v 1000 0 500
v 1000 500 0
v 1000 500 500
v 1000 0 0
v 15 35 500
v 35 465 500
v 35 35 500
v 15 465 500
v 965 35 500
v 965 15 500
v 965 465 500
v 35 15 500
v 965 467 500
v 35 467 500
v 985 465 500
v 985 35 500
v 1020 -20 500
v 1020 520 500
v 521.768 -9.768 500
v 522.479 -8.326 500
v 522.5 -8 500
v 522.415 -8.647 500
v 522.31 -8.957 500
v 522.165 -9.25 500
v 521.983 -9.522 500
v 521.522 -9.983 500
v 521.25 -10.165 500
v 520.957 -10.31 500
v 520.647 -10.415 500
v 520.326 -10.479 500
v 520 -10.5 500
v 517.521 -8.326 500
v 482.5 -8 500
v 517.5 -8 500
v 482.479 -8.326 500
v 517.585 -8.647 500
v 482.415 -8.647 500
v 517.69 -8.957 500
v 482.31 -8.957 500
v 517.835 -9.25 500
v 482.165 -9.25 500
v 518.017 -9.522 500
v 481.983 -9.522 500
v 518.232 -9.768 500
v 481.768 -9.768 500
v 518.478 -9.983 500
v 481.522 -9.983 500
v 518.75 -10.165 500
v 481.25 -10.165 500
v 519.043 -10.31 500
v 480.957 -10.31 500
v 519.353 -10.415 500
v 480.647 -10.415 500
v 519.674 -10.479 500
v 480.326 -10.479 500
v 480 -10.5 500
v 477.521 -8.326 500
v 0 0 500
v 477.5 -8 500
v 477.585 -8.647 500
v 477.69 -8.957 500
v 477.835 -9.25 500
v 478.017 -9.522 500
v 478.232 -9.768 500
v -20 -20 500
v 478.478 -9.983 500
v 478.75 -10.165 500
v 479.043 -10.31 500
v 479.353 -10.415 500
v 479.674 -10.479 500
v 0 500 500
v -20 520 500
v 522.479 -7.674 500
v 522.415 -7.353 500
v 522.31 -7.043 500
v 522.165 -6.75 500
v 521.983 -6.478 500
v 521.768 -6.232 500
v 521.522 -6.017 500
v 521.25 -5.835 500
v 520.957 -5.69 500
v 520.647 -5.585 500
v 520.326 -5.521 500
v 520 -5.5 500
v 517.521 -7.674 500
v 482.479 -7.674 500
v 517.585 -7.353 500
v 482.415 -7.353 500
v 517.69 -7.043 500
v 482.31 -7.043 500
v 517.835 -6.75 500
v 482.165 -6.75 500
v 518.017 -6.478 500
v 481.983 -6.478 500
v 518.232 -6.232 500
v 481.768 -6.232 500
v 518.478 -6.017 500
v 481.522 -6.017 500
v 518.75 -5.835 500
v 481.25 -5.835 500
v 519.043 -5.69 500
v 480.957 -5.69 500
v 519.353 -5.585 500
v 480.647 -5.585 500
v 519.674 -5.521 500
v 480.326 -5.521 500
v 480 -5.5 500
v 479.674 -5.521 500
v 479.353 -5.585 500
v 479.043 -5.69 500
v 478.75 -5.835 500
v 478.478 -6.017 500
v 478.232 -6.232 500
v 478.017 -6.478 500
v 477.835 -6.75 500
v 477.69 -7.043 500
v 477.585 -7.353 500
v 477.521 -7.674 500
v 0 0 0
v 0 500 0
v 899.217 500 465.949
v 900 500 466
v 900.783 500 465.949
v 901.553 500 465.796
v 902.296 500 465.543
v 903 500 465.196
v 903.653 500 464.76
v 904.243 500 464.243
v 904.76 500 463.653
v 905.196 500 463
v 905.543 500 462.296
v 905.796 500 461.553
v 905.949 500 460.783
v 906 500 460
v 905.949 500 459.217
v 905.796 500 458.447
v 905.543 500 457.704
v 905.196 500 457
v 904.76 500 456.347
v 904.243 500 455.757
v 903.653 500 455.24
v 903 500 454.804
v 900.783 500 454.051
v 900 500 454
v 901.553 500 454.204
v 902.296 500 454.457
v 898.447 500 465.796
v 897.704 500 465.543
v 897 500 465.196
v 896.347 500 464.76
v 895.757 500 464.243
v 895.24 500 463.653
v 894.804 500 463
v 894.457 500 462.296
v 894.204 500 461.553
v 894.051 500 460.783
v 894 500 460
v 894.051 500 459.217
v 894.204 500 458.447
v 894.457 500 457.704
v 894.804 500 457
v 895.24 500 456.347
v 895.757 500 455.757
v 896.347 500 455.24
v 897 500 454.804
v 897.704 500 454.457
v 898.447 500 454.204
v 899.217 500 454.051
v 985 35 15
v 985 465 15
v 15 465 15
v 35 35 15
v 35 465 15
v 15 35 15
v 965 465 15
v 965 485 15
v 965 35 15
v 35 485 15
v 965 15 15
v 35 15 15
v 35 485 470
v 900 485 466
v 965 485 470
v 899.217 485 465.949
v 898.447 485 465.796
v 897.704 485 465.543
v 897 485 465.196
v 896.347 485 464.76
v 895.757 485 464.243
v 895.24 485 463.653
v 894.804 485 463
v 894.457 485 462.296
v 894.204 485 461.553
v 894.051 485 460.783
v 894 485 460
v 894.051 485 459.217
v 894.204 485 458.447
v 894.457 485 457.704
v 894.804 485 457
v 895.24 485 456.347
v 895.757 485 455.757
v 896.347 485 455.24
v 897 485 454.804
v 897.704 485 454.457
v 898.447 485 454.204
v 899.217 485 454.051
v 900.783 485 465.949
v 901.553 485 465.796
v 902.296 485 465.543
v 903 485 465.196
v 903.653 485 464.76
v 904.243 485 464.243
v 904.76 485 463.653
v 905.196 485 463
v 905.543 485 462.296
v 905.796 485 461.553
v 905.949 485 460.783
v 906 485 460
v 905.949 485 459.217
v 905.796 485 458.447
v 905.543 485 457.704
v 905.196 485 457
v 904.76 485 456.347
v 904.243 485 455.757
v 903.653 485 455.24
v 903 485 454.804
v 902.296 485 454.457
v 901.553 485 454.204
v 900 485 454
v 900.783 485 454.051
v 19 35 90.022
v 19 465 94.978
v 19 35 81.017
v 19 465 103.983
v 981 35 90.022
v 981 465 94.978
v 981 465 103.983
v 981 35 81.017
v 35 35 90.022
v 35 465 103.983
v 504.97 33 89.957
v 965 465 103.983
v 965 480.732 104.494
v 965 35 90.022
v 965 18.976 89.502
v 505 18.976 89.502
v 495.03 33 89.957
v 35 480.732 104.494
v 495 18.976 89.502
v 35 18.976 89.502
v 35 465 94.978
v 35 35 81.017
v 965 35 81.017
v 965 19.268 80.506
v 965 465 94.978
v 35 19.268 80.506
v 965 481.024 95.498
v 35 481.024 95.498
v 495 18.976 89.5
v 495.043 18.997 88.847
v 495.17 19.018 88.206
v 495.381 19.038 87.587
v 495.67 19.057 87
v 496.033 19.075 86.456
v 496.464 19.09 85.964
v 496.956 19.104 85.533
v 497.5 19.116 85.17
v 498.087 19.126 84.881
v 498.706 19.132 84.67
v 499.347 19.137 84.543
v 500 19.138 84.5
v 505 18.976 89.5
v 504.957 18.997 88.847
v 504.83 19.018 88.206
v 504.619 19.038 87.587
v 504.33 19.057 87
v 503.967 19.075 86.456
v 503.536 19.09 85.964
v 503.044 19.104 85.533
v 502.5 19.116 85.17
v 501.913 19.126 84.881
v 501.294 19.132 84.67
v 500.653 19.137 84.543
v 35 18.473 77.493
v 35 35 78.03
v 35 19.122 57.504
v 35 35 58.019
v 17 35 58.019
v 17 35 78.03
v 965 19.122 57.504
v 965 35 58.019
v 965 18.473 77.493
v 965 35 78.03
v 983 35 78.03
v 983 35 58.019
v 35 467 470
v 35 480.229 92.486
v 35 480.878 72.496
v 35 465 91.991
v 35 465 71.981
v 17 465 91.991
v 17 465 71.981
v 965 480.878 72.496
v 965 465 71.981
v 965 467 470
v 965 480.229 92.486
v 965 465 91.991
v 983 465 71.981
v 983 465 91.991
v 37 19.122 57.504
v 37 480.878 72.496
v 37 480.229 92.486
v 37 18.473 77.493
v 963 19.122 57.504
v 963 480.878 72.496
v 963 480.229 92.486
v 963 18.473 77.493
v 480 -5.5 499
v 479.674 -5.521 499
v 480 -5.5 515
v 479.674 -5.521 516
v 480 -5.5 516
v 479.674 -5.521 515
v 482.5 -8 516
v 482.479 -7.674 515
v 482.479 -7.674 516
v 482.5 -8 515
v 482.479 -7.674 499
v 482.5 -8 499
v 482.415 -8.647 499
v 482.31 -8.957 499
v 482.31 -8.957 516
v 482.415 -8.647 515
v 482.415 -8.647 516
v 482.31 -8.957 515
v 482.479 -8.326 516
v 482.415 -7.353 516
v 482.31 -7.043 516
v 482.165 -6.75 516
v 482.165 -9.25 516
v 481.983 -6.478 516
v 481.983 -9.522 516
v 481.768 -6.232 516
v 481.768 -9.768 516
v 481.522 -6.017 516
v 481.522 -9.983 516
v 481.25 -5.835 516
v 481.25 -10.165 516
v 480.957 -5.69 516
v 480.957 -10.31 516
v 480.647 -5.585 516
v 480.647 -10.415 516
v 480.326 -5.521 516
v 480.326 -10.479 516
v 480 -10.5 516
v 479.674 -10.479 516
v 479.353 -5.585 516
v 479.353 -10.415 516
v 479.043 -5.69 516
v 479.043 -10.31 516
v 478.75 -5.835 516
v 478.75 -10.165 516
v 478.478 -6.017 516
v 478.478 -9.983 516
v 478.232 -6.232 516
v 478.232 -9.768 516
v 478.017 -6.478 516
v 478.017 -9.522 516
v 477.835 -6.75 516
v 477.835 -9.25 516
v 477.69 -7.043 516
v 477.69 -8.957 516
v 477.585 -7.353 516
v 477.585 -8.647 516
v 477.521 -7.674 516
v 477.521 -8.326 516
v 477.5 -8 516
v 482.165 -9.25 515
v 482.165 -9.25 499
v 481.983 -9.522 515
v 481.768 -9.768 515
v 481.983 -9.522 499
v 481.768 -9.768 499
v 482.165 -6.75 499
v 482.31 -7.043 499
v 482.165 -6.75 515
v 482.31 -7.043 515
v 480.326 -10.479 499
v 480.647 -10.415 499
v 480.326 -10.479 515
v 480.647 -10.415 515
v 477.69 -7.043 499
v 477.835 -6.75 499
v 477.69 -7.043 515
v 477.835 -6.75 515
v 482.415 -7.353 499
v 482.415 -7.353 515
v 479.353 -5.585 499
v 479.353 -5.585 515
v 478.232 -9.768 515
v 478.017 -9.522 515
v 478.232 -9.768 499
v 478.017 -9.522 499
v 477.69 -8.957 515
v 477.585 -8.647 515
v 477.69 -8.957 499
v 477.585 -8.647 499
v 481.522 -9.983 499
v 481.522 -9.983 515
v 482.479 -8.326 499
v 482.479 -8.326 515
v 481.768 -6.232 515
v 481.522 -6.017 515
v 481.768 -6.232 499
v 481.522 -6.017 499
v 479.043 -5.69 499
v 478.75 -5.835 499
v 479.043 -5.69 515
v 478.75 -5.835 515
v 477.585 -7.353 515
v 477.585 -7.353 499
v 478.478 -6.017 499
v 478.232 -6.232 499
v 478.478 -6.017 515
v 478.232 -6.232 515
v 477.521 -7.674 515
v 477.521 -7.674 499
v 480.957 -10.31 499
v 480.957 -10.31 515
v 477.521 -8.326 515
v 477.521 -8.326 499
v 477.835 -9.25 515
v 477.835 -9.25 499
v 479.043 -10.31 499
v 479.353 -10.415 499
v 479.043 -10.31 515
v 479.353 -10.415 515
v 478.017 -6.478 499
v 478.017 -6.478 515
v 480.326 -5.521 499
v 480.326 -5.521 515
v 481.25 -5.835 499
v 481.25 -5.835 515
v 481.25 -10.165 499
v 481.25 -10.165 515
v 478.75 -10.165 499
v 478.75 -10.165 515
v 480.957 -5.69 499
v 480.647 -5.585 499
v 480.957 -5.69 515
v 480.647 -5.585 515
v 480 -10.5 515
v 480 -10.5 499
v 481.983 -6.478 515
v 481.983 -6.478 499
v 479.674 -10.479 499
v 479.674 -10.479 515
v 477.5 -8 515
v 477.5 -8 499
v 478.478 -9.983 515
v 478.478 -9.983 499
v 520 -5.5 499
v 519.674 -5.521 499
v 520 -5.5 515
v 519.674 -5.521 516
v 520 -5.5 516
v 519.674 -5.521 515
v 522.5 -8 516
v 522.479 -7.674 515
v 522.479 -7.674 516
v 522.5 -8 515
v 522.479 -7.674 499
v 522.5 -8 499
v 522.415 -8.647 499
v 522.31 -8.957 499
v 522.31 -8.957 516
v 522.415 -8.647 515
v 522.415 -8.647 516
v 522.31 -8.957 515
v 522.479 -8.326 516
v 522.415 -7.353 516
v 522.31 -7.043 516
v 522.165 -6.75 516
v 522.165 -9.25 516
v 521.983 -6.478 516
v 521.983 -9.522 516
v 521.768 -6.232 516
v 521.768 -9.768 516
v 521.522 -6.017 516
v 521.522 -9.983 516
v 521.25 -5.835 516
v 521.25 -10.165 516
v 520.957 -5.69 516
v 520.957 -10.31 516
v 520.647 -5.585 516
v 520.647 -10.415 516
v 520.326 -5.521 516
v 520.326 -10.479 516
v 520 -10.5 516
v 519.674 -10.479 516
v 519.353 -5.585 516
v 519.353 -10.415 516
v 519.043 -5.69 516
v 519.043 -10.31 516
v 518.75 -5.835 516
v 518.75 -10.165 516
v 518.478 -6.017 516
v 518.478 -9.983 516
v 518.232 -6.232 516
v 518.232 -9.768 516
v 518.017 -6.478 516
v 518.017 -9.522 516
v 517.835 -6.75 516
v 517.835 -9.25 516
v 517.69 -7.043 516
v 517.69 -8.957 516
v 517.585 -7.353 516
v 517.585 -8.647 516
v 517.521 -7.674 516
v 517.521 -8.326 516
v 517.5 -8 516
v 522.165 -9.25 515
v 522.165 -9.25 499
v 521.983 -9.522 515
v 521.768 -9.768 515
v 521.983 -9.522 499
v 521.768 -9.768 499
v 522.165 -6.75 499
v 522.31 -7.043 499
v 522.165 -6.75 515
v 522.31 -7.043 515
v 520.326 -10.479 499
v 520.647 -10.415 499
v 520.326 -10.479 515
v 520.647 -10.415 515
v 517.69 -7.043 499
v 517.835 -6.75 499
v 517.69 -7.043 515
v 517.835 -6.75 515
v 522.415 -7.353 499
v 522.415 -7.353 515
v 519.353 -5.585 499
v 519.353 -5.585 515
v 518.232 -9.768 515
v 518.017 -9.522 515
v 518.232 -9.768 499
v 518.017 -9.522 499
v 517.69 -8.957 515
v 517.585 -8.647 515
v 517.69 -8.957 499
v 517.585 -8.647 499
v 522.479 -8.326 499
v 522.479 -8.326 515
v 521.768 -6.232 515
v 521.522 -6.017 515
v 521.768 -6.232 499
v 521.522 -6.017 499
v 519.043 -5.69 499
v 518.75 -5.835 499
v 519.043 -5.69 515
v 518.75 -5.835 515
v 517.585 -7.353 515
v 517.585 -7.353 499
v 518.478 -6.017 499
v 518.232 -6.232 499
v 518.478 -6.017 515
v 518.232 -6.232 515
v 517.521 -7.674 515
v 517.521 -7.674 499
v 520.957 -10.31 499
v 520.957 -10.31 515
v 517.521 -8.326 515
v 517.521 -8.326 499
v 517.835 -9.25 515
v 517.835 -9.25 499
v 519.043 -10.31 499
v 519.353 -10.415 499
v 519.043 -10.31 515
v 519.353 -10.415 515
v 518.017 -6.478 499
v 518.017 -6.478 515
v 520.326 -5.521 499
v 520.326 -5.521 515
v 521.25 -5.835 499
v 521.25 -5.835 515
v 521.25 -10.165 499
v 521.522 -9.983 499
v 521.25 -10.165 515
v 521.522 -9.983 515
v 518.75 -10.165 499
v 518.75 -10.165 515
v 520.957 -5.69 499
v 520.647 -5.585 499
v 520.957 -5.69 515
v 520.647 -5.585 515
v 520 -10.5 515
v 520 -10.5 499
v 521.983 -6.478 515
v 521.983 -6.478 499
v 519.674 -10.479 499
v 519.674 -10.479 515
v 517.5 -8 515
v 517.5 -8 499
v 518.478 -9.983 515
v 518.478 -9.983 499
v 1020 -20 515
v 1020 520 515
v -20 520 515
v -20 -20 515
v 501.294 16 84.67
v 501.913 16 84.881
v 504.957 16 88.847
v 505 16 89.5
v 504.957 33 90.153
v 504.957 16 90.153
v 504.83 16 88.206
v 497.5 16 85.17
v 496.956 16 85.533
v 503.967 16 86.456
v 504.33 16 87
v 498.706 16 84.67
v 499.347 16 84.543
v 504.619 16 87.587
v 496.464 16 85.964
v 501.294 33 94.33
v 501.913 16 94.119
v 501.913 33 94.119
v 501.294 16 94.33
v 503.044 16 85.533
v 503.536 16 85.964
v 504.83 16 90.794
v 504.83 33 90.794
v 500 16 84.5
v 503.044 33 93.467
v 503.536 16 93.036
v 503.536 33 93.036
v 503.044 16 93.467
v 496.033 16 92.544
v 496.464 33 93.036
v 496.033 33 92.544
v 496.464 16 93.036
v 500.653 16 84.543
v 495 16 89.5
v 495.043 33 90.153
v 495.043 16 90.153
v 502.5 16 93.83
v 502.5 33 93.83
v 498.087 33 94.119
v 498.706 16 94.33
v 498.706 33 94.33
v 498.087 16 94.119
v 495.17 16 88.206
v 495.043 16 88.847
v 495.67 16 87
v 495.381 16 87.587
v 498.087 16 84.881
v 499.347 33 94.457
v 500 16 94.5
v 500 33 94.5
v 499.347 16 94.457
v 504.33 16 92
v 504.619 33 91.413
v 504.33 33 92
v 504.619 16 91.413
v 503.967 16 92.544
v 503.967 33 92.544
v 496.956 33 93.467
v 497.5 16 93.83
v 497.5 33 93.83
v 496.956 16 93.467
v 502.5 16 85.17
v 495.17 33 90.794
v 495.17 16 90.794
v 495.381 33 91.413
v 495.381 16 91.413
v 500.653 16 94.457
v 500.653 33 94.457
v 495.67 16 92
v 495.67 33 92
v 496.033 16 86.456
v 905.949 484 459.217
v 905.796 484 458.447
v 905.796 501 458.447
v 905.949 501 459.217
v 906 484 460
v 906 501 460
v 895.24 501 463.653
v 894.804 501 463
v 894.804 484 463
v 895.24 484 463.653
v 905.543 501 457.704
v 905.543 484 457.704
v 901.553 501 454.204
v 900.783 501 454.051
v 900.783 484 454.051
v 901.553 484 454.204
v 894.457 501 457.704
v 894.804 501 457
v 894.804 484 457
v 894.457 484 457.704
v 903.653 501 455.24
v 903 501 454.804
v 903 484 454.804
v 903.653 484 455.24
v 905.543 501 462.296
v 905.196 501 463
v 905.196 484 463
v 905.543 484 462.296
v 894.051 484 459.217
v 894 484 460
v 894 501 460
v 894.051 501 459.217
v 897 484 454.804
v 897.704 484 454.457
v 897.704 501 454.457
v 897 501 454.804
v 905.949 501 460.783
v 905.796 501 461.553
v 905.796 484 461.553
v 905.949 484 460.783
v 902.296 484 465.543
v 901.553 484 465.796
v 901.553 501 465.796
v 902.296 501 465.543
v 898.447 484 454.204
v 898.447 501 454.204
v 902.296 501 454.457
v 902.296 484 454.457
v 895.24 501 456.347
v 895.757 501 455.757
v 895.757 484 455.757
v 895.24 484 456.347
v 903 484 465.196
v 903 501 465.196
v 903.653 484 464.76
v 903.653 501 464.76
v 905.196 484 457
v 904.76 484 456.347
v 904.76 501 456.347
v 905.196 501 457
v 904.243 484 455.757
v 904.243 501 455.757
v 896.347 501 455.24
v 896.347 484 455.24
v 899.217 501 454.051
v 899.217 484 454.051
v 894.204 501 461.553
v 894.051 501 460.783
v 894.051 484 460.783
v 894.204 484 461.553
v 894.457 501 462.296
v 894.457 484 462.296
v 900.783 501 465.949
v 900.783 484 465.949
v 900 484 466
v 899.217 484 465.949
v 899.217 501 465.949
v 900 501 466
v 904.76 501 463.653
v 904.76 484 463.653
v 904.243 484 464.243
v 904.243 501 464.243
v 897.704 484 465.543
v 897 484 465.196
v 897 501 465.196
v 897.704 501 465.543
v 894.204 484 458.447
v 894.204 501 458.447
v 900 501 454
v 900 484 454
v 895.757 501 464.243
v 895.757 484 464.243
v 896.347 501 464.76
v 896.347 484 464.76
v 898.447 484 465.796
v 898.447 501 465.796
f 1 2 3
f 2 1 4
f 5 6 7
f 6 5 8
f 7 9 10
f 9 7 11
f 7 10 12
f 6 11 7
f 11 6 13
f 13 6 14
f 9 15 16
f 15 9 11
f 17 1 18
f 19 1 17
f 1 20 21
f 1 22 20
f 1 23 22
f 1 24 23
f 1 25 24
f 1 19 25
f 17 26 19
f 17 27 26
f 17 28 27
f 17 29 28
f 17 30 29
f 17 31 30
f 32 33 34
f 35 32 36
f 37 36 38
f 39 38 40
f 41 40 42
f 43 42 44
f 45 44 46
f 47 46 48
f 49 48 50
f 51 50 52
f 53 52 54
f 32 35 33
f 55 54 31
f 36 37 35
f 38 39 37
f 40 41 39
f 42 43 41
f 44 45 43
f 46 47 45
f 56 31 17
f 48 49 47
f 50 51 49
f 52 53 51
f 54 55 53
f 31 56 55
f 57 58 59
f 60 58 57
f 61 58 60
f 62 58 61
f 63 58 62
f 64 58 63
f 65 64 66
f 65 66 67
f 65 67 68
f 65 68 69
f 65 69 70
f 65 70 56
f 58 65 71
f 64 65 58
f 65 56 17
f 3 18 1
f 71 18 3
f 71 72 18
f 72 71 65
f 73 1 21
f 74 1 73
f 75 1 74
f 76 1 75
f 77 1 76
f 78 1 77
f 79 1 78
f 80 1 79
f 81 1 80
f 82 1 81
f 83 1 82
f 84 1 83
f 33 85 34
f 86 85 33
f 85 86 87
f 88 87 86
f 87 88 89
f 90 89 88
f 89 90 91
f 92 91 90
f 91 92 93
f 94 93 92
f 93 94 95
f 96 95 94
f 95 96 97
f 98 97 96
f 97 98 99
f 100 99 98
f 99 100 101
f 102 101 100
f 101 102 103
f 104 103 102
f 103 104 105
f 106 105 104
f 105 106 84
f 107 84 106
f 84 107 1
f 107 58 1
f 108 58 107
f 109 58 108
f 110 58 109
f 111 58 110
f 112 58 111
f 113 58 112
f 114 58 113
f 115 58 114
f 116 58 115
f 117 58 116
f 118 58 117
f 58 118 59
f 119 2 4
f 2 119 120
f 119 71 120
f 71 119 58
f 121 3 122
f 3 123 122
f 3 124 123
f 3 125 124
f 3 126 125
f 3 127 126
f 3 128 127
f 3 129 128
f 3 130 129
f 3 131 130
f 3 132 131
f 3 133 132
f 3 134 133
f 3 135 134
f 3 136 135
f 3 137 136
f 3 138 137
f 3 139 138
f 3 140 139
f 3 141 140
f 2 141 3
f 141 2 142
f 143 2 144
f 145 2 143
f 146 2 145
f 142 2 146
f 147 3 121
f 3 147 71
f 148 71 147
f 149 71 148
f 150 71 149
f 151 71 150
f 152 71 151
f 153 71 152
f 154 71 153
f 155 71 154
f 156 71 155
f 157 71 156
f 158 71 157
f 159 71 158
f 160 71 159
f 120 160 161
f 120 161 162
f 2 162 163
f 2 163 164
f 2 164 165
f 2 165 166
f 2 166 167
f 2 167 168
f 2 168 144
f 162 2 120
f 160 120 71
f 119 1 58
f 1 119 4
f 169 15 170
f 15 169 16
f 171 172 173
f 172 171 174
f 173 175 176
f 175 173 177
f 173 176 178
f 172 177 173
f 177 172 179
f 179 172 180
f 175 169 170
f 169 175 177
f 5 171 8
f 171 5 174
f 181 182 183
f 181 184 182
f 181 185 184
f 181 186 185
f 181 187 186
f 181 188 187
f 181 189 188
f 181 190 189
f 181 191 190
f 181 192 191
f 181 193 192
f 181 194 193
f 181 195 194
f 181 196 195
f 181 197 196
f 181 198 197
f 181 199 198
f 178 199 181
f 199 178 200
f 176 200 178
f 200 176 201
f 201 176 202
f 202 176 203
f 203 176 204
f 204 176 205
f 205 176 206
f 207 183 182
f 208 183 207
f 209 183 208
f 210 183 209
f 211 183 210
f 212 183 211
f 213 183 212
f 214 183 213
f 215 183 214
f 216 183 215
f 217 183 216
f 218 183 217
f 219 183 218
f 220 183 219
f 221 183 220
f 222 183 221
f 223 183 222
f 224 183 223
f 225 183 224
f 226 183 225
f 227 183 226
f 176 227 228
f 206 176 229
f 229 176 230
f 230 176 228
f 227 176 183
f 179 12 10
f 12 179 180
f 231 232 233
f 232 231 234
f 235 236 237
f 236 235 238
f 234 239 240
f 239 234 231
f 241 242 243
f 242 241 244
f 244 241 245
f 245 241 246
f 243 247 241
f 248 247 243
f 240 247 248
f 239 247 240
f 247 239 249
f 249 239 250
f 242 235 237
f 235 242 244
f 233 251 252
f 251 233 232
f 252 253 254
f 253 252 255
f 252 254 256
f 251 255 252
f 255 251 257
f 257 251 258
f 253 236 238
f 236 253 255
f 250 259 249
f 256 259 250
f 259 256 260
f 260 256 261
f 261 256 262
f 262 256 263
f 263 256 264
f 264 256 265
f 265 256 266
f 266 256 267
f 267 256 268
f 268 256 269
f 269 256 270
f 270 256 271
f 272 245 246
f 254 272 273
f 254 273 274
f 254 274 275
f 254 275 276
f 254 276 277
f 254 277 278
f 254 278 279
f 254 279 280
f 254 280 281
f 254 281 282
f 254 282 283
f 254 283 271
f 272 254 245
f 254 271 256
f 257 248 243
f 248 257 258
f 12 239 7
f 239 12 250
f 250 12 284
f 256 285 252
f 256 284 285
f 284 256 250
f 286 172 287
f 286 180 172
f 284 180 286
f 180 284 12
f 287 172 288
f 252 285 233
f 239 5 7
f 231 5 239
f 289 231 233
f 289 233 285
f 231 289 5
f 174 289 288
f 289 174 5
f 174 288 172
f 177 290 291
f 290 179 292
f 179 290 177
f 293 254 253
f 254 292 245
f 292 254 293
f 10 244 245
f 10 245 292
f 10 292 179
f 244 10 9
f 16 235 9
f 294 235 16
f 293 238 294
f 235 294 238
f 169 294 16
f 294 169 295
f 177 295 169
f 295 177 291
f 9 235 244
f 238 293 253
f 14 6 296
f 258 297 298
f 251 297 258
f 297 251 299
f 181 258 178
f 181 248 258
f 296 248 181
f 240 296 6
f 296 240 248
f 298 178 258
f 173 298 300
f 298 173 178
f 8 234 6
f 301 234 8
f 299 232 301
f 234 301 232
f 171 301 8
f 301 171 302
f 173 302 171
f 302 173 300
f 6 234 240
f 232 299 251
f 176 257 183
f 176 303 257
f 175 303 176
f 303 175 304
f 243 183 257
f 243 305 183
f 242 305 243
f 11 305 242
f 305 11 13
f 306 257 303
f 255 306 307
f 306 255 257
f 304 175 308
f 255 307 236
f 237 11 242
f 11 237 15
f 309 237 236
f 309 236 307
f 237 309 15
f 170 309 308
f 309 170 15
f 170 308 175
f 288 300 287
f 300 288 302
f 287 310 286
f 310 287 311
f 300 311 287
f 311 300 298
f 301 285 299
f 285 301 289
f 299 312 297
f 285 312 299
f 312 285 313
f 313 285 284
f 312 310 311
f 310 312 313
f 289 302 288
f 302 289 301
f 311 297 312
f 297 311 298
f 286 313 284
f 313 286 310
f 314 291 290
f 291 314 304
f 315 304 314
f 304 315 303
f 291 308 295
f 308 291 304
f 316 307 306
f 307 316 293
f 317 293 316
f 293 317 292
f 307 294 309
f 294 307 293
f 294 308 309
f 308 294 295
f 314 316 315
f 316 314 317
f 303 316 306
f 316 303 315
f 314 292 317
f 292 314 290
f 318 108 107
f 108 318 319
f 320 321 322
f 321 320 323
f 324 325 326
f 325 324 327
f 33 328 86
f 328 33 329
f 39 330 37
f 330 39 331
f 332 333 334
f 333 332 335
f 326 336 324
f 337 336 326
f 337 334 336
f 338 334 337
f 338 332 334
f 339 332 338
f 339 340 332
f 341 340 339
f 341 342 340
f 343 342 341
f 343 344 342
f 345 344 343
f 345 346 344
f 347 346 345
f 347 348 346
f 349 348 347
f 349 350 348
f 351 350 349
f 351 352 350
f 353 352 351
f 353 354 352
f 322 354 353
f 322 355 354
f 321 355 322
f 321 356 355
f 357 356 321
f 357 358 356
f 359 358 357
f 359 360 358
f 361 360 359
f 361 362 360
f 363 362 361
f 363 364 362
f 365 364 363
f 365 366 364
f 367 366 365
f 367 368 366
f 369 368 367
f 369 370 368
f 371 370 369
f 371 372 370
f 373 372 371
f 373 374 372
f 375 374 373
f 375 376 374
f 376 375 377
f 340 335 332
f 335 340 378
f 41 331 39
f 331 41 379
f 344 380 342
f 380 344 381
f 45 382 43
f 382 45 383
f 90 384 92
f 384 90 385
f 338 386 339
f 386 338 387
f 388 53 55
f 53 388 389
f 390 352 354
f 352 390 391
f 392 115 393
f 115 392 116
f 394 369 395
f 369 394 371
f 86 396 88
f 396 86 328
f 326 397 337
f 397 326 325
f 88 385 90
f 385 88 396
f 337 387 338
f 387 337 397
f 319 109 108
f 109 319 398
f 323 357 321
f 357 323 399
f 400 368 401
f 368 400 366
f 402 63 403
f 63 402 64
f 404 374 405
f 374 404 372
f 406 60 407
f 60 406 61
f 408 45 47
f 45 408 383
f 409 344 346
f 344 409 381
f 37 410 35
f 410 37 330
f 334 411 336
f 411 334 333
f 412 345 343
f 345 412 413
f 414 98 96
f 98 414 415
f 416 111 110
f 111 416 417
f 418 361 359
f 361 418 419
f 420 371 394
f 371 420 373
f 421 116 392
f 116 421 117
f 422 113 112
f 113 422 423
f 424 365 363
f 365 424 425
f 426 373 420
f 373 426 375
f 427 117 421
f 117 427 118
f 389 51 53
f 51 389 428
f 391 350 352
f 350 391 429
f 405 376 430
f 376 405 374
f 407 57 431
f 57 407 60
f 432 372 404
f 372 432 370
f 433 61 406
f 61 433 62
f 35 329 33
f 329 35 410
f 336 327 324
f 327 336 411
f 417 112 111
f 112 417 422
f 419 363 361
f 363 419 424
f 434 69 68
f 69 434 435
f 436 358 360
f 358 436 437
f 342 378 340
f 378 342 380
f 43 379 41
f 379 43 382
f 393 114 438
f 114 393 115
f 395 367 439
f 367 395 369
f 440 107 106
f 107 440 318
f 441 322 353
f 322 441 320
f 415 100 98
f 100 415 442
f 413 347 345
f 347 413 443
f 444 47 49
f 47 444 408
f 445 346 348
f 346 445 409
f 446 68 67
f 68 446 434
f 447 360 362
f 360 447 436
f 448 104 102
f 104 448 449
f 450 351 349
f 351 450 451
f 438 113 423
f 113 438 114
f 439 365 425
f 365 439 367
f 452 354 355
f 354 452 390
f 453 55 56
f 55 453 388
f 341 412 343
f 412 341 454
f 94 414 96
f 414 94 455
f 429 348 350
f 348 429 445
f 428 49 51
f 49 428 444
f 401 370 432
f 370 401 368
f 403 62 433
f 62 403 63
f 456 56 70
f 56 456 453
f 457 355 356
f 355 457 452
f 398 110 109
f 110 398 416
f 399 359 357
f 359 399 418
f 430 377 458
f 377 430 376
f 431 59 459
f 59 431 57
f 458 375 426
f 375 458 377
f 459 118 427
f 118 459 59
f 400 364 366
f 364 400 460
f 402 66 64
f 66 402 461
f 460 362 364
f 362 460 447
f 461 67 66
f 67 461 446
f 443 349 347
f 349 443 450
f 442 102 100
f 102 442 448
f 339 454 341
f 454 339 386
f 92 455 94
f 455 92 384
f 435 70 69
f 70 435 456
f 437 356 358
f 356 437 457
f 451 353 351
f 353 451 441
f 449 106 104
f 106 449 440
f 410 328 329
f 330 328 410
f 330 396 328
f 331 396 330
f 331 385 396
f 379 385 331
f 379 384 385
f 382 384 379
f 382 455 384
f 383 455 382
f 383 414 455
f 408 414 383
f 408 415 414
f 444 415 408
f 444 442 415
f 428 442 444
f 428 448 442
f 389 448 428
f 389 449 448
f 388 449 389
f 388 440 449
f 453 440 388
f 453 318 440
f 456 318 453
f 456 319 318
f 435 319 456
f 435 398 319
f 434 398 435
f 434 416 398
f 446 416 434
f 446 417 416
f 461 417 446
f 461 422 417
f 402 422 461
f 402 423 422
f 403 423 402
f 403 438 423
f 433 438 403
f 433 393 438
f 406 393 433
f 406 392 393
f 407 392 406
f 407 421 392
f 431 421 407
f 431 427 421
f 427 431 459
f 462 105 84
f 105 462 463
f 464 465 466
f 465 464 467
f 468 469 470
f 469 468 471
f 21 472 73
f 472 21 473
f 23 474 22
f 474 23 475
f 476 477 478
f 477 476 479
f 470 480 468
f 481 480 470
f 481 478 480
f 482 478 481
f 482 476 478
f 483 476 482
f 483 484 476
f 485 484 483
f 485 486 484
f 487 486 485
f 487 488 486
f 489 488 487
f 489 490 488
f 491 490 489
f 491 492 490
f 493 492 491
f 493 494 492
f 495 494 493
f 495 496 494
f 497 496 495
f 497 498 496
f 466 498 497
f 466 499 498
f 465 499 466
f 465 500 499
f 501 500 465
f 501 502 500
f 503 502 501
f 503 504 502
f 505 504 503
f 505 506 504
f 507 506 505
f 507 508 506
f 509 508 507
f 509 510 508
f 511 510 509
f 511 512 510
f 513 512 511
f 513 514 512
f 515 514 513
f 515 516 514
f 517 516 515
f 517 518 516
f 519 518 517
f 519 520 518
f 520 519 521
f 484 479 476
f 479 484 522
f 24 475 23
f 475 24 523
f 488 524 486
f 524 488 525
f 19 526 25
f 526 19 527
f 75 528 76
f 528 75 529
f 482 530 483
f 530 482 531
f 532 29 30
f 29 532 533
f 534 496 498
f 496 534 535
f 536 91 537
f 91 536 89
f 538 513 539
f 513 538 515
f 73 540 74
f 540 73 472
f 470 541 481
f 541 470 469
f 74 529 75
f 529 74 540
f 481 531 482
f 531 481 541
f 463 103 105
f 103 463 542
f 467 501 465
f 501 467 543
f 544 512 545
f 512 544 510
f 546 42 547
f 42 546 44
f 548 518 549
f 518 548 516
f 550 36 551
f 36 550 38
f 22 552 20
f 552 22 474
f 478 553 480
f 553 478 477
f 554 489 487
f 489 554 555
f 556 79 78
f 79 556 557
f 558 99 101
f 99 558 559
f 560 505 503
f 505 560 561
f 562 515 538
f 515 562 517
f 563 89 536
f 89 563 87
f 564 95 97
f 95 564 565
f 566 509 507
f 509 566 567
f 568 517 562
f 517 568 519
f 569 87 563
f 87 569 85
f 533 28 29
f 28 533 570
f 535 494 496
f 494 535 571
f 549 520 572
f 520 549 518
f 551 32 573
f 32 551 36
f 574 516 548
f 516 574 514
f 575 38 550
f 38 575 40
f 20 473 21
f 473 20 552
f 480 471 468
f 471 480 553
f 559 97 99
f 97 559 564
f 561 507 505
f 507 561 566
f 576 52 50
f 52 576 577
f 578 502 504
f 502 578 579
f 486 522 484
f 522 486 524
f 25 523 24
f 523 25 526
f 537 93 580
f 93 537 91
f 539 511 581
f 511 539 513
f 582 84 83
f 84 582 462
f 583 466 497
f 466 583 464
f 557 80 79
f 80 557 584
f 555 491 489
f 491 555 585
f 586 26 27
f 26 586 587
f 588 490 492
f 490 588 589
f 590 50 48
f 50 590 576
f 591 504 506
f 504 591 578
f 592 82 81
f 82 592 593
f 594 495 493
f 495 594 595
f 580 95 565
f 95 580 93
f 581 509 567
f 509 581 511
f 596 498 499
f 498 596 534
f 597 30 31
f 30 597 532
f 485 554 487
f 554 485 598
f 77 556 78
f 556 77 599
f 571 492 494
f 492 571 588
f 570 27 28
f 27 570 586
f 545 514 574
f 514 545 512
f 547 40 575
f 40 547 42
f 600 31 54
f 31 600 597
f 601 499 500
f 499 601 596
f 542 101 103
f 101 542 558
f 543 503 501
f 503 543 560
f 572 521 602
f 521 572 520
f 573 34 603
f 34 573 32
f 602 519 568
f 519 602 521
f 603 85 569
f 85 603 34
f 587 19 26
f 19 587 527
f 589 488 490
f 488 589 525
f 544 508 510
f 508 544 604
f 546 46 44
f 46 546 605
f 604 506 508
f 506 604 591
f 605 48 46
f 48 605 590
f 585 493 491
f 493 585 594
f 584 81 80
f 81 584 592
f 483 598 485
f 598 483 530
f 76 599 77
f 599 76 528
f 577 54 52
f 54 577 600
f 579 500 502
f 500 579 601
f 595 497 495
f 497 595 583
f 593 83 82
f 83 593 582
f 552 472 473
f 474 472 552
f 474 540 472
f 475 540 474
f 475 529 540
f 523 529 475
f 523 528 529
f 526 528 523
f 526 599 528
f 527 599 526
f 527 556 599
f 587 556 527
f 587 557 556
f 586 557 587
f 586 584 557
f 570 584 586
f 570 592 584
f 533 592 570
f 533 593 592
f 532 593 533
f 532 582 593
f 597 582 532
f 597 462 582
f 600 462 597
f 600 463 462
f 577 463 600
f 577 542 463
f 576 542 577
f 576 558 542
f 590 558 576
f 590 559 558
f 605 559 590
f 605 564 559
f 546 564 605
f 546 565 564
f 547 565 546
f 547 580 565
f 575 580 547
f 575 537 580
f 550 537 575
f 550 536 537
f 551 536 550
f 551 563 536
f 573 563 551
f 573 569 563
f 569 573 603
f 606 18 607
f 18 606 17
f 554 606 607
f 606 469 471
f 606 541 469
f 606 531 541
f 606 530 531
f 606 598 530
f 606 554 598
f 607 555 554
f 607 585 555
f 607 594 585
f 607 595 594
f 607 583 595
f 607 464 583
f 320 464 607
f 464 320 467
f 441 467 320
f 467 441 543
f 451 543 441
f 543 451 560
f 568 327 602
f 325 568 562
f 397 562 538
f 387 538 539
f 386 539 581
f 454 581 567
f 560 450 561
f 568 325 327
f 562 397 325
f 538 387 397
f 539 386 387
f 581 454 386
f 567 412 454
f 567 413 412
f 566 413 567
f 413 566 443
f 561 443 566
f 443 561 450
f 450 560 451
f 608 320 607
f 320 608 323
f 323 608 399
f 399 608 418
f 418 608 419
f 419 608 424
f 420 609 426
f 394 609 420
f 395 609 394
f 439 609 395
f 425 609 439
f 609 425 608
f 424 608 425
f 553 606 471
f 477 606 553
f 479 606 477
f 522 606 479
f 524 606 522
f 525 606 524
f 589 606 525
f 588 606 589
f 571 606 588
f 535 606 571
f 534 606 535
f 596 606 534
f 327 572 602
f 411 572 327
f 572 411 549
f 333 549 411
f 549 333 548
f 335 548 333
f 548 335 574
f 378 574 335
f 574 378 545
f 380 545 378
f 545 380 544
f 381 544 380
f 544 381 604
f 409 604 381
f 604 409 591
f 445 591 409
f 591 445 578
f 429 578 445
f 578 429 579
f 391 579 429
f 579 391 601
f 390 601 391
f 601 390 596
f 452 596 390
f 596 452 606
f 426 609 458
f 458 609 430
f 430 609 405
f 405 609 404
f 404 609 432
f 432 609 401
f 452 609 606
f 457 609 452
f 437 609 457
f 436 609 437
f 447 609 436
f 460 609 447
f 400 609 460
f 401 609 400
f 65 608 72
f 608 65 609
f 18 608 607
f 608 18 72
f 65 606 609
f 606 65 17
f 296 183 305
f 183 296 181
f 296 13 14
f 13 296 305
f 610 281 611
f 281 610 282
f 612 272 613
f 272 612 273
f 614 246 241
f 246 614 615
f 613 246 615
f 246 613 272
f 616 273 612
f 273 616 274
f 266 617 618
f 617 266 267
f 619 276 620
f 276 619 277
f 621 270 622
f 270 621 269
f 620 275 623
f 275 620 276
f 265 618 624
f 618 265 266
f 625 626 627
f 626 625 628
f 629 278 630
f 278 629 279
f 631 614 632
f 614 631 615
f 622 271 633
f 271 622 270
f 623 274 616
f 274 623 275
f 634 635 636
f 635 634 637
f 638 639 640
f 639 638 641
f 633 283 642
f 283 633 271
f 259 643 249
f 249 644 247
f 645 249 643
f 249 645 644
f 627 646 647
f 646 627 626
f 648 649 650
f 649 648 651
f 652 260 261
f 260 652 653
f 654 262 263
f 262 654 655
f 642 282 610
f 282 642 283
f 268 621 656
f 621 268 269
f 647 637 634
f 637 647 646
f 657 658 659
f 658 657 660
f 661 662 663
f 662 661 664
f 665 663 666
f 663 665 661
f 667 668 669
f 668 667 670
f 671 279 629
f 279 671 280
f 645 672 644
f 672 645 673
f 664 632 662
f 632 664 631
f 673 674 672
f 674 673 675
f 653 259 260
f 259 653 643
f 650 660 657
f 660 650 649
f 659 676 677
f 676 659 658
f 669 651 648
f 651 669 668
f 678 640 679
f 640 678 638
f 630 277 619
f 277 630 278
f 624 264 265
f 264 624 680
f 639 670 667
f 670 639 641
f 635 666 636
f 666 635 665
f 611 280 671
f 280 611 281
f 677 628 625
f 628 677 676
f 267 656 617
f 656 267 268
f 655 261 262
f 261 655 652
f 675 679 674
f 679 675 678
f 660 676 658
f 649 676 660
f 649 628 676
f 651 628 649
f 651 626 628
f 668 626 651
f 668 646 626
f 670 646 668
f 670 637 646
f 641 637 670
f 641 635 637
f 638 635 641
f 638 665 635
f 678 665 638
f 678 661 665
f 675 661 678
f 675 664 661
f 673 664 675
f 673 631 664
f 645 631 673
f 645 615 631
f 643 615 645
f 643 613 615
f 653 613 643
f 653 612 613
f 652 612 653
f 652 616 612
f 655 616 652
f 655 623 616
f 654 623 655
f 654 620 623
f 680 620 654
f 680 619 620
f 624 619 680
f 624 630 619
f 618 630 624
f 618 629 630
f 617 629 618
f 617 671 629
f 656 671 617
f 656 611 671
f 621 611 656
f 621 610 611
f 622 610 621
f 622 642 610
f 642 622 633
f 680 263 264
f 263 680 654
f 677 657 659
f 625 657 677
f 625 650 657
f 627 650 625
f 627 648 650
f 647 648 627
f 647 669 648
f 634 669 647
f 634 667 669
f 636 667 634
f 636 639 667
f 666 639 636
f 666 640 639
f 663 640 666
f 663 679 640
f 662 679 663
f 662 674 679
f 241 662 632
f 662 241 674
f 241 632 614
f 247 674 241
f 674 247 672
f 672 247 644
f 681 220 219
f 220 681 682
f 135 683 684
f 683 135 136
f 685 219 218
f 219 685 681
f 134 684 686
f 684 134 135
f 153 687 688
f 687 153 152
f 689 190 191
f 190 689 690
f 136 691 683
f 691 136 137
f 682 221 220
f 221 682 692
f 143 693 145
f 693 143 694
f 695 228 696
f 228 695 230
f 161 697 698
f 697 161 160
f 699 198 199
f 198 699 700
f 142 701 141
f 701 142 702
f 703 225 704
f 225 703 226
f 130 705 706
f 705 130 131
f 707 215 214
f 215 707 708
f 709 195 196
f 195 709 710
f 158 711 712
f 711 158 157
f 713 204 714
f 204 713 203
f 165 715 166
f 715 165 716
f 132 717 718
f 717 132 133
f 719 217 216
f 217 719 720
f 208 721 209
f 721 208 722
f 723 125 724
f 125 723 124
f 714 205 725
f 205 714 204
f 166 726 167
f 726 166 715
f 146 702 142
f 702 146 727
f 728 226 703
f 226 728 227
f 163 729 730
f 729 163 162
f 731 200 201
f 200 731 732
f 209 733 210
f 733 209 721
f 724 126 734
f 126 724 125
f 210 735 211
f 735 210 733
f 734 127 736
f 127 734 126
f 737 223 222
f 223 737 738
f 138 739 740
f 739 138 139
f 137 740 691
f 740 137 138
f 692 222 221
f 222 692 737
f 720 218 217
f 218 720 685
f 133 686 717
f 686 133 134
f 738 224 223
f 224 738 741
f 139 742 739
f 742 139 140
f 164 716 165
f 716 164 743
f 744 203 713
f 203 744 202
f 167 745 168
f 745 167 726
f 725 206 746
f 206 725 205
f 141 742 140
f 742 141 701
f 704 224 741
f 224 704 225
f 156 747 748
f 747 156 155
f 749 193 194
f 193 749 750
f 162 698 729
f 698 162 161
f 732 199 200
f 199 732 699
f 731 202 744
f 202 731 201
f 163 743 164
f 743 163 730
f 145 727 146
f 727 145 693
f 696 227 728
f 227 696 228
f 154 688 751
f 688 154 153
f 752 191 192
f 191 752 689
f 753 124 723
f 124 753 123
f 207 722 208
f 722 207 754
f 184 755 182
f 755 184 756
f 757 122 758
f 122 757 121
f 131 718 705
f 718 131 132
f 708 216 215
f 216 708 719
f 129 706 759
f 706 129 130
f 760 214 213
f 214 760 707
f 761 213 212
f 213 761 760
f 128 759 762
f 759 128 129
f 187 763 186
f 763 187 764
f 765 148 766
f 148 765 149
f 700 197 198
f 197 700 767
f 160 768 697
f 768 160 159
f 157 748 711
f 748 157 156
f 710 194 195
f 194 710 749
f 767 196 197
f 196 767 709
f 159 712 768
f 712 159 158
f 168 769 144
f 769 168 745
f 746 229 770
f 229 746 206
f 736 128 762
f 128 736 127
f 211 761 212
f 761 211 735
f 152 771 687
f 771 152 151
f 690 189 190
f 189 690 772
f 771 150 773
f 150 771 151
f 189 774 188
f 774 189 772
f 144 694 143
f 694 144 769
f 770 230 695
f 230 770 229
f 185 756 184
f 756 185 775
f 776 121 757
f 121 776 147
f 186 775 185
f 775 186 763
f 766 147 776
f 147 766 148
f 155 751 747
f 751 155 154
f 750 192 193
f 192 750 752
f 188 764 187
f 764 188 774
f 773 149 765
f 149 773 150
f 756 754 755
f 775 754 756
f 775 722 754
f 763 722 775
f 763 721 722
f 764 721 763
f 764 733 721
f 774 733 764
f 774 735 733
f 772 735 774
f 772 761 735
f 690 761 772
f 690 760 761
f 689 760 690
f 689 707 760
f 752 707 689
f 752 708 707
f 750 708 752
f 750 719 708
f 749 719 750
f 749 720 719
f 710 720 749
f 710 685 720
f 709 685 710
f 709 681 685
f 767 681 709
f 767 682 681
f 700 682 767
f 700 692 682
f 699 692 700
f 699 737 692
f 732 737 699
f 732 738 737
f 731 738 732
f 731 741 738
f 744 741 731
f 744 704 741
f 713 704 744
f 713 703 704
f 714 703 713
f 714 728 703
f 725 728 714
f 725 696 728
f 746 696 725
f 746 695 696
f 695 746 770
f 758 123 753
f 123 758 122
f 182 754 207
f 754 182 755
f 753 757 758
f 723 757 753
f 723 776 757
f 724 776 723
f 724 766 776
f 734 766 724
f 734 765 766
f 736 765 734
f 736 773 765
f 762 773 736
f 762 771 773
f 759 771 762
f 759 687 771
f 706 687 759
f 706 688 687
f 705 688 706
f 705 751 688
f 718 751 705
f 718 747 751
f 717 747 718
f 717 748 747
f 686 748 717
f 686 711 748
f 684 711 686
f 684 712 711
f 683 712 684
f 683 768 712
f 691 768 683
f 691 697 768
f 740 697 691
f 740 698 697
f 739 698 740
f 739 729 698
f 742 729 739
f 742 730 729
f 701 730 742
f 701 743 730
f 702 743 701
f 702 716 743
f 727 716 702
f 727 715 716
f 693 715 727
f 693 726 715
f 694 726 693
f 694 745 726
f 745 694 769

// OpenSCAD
// ============================================================
// Lukittava filmivaneriarkku — parametrinen malli (v3)
// ============================================================
// Ulkomitat 100 x 50 x 50 cm (leveys x syvyys x korkeus).
// KORKEUS ON OLETUS — vahvista jos tarkoitit muuta.
//
// v3: kansi yksinkertaistettu YHDEKSI TASAISEKSI LEVYKSI, joka
// lepää runko-reunojen päällä ja ylittää ne LID_OVERHANG mm
// kaikilta sivuilta. Ei enää erillistä "hattu"-skirttiä.
//
// Sarana: koska levy on ohut (15mm), lisätty paikallinen
// vahvistuslista kannen ALAPINTAAN takareunan kohdalle —
// vain siihen kohtaan, ei koko kannen ympäri. Tämä antaa
// saranaruuveille tartuntapintaa ilman että kansi muuttuu
// "hattu"-rakenteeksi.
//
// Yksiköt: mm
// ============================================================

// ---------- PÄÄMITAT ----------
WIDTH   = 1000;
DEPTH   = 500;
HEIGHT  = 500;   // OLETUS — tarkista
T       = 15;    // rungon/kannen vesivanerin paksuus

// ---------- KANSI ----------
LID_T        = T;     // kannen levyn paksuus
LID_OVERHANG = 20;     // kuinka paljon kansi ylittää rungon reunat, per sivu

// ---------- VALEPOHJA ----------
FLOOR_T      = 9;
CAVITY_H_LOW = 70;
FLOOR_SLOPE  = 15;
FLOOR_MARGIN = 4;
BATTEN_SEC   = 20;   // valepohjan tukirimat

// ---------- KULMALISTAT (runko) ----------
CORNER_BATTEN_SEC = 20;

// ---------- SARANAN VAHVISTUS ----------
HINGE_BATTEN_W = 30;   // pituus kansi/runko-suunnassa (y), mm
HINGE_BATTEN_T = 18;   // korkeus/paksuus (z), mm — kuinka paljon lisää materiaalia

// ---------- VEDENPOISTO ----------
DRAIN_D = 10;

// ---------- LUKKOMEKANISMI (etureunassa) ----------
LOCK_HOLE_D = 5;
LOCK_HOLE_SPACING = 40;

// ---------- KAAPELIN LÄPIVIENTI ----------
CABLE_HOLE_D = 12;

$fn = 48;

// ============================================================
// MODUULIT
// ============================================================

module box_shell(w, d, h, t) {
    difference() {
        cube([w, d, h]);
        translate([t, t, t])
            cube([w - 2*t, d - 2*t, h]);
    }
}

module corner_battens(w, d, h, t, sec) {
    positions = [
        [t, t],
        [w - t - sec, t],
        [t, d - t - sec],
        [w - t - sec, d - t - sec]
    ];
    color("saddlebrown")
    for (p = positions)
        translate([p[0], p[1], t])
            cube([sec, sec, h - t]);
}

// Vahvistuslista rungon TAKASEINÄN sisäpintaan, saranaruuveja varten
module hinge_batten_box(w, d, h, t, batten_w, batten_t) {
    color("saddlebrown")
    translate([t, d - t - batten_t, h - batten_w])
        cube([w - 2*t, batten_t, batten_w]);
}

// Yksinkertainen ylimenevä kansi: tasainen levy + paikallinen
// vahvistuslista alapinnassa takareunan kohdalla
module flat_lid(w, d, t, overhang, batten_w, batten_t) {
    lid_w = w + 2*overhang;
    lid_d = d + 2*overhang;

    color("tan", 0.85)
    cube([lid_w, lid_d, t]);

    // Vahvistuslista alapintaan, takareunan kohdalle (sarana tähän)
    color("saddlebrown")
    translate([overhang, lid_d - overhang - batten_t, -batten_w])
        cube([w, batten_t, batten_w]);

    // Lukkomekanismin kiinnitysreiät etureunan alapintaan
    // (hasp/salpalukko ruuvataan tähän, vastakappale runkoon)
    cx = lid_w / 2;
    for (dx = [-LOCK_HOLE_SPACING/2, LOCK_HOLE_SPACING/2])
        translate([cx + dx, overhang * 0.6, -1])
            color("black")
            cylinder(d = LOCK_HOLE_D, h = t + 2);
}

module false_floor(inner_w, inner_d, base_z) {
    fw = inner_w - 2*FLOOR_MARGIN;
    fd = inner_d - 2*FLOOR_MARGIN;
    angle = atan2(FLOOR_SLOPE, fd);

    color("burlywood")
    intersection() {
        translate([T + FLOOR_MARGIN, T + FLOOR_MARGIN, base_z])
        translate([0, 0, FLOOR_SLOPE/2])
        translate([fw/2, fd/2, 0])
        rotate([angle, 0, 0])
        translate([-fw/2, -fd/2, -FLOOR_T/2])
            cube([fw, fd, FLOOR_T]);

        translate([T, T, base_z - 5])
            cube([inner_w, inner_d, FLOOR_SLOPE + FLOOR_T + 10]);
    }

    for (side = [T + 2, T + inner_w - BATTEN_SEC - 2])
        color("sienna")
        translate([side, T + FLOOR_MARGIN, base_z - BATTEN_SEC])
        translate([0, fd/2, 0])
        rotate([angle, 0, 0])
        translate([0, -fd/2, 0])
            cube([BATTEN_SEC, fd, BATTEN_SEC]);
}

// ============================================================
// KOKOONPANO (esikatselu)
// ============================================================

inner_w = WIDTH - 2*T;
inner_d = DEPTH - 2*T;

color("wheat", 0.9)
    box_shell(WIDTH, DEPTH, HEIGHT, T);

corner_battens(WIDTH, DEPTH, HEIGHT, T, CORNER_BATTEN_SEC);
hinge_batten_box(WIDTH, DEPTH, HEIGHT, T, HINGE_BATTEN_W, HINGE_BATTEN_T);

false_floor(inner_w, inner_d, T + CAVITY_H_LOW);

translate([WIDTH/2, T + 1, T + CAVITY_H_LOW + FLOOR_T/2])
    rotate([-90, 0, 0])
    color("black")
    cylinder(d = DRAIN_D, h = T + 2);

translate([WIDTH - 100, DEPTH - T - 1, HEIGHT - 40])
    rotate([-90, 0, 0])
    color("black")
    cylinder(d = CABLE_HOLE_D, h = T + 2);

// Kansi levätä suoraan rungon reunojen päällä
translate([-LID_OVERHANG, -LID_OVERHANG, HEIGHT])
    flat_lid(WIDTH, DEPTH, LID_T, LID_OVERHANG, HINGE_BATTEN_W, HINGE_BATTEN_T);

// ============================================================
// SARANA — pinta-asennus, paikallinen vahvistus
// ============================================================
// Kansi on tasainen levy, ei skirtiä. Sarana asennetaan
// PINTA-ASENNUKSENA runko/kansi-sauman päälle:
//   - toinen sivu ruuvataan rungon takaseinän YLÄREUNAAN/-pintaan
//     (hinge_batten_box antaa tukea sisäpuolelta)
//   - toinen sivu ruuvataan kannen ALAPINTAAN takareunan kohdalle
//     (flat_lid:n paikallinen vahvistuslista antaa tukea)
// Koska kansi ei ylety reunojen ohi pystysuoraan, sarana näkyy
// päältä katsottuna saumassa — tämä on normaalia arkku-tyylisissä
// laatikoissa (esim. K-Raudan piha-arkut).
//
// HUOM vedenpitävyydestä: koska kansi on tasainen levy jonka
// alapinta on suoraan rungon reunan päällä, sauma EI ole yhtä
// tiivis kuin skirt-mallissa. Jos säänkestävyys on tärkeä,
// harkitse tiivistenauhaa (esim. EPDM-vaahtonauha) rungon
// yläreunaan kannen alapuolelle, tai pisarauran jyrsimistä
// kannen alapintaan reunan tuntumaan.

echo(str("Pohja: ", WIDTH, " x ", DEPTH, " mm, t=", T));
echo(str("Etu-/takaseinä: ", WIDTH - 2*T, " x ", HEIGHT, " mm, t=", T));
echo(str("Sivuseinä: ", DEPTH, " x ", HEIGHT, " mm, t=", T));
echo(str("Kansi: ", WIDTH + 2*LID_OVERHANG, " x ", DEPTH + 2*LID_OVERHANG,
         " mm, t=", LID_T));
echo(str("Valepohja: ", inner_w - 2*FLOOR_MARGIN, " x ",
         inner_d - 2*FLOOR_MARGIN, " mm, t=", FLOOR_T,
         " (kaltevuus ", FLOOR_SLOPE, " mm)"));
echo(str("Kulmalista (4 kpl): ", CORNER_BATTEN_SEC, " x ", CORNER_BATTEN_SEC,
         " x ", HEIGHT - T, " mm"));
echo(str("Saranan vahvistuslista, runko: ", WIDTH - 2*T, " x ",
         HINGE_BATTEN_T, " x ", HINGE_BATTEN_W, " mm"));
echo(str("Saranan vahvistuslista, kansi: ", WIDTH, " x ",
         HINGE_BATTEN_T, " x ", HINGE_BATTEN_W, " mm"));
